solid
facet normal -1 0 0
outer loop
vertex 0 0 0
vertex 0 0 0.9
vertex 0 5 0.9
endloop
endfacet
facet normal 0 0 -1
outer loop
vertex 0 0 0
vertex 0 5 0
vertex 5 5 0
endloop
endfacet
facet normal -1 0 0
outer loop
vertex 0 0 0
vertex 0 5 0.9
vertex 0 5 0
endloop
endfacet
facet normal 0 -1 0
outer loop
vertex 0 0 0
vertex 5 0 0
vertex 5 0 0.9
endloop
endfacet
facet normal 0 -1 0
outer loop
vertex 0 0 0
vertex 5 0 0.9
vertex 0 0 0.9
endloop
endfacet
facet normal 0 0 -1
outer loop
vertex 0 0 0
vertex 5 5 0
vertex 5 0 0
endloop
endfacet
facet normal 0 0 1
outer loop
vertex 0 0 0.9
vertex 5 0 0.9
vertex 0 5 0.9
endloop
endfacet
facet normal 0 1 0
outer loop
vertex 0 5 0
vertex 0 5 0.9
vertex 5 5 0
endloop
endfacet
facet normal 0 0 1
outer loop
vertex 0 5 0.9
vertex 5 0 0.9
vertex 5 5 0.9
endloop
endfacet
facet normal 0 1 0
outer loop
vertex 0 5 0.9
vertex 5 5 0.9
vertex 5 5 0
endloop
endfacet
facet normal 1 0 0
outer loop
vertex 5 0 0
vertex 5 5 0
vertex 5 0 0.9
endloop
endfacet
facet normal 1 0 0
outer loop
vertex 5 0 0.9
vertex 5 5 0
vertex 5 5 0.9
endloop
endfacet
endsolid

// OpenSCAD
/* Warning, this is a very basic generator with a lot of approximation 
input data : [QFN, P7X, 5x5x0.9mm, 28, , C, C04-00140C]
generated by com.zoubworld.electronics.cad.model3d.Basic
Date : Sun Feb 15 10:50:48 CET 2026
*/

//body
color("black")
translate([0,0,0])
cube([5.0,5.0,0.9], center=false);
